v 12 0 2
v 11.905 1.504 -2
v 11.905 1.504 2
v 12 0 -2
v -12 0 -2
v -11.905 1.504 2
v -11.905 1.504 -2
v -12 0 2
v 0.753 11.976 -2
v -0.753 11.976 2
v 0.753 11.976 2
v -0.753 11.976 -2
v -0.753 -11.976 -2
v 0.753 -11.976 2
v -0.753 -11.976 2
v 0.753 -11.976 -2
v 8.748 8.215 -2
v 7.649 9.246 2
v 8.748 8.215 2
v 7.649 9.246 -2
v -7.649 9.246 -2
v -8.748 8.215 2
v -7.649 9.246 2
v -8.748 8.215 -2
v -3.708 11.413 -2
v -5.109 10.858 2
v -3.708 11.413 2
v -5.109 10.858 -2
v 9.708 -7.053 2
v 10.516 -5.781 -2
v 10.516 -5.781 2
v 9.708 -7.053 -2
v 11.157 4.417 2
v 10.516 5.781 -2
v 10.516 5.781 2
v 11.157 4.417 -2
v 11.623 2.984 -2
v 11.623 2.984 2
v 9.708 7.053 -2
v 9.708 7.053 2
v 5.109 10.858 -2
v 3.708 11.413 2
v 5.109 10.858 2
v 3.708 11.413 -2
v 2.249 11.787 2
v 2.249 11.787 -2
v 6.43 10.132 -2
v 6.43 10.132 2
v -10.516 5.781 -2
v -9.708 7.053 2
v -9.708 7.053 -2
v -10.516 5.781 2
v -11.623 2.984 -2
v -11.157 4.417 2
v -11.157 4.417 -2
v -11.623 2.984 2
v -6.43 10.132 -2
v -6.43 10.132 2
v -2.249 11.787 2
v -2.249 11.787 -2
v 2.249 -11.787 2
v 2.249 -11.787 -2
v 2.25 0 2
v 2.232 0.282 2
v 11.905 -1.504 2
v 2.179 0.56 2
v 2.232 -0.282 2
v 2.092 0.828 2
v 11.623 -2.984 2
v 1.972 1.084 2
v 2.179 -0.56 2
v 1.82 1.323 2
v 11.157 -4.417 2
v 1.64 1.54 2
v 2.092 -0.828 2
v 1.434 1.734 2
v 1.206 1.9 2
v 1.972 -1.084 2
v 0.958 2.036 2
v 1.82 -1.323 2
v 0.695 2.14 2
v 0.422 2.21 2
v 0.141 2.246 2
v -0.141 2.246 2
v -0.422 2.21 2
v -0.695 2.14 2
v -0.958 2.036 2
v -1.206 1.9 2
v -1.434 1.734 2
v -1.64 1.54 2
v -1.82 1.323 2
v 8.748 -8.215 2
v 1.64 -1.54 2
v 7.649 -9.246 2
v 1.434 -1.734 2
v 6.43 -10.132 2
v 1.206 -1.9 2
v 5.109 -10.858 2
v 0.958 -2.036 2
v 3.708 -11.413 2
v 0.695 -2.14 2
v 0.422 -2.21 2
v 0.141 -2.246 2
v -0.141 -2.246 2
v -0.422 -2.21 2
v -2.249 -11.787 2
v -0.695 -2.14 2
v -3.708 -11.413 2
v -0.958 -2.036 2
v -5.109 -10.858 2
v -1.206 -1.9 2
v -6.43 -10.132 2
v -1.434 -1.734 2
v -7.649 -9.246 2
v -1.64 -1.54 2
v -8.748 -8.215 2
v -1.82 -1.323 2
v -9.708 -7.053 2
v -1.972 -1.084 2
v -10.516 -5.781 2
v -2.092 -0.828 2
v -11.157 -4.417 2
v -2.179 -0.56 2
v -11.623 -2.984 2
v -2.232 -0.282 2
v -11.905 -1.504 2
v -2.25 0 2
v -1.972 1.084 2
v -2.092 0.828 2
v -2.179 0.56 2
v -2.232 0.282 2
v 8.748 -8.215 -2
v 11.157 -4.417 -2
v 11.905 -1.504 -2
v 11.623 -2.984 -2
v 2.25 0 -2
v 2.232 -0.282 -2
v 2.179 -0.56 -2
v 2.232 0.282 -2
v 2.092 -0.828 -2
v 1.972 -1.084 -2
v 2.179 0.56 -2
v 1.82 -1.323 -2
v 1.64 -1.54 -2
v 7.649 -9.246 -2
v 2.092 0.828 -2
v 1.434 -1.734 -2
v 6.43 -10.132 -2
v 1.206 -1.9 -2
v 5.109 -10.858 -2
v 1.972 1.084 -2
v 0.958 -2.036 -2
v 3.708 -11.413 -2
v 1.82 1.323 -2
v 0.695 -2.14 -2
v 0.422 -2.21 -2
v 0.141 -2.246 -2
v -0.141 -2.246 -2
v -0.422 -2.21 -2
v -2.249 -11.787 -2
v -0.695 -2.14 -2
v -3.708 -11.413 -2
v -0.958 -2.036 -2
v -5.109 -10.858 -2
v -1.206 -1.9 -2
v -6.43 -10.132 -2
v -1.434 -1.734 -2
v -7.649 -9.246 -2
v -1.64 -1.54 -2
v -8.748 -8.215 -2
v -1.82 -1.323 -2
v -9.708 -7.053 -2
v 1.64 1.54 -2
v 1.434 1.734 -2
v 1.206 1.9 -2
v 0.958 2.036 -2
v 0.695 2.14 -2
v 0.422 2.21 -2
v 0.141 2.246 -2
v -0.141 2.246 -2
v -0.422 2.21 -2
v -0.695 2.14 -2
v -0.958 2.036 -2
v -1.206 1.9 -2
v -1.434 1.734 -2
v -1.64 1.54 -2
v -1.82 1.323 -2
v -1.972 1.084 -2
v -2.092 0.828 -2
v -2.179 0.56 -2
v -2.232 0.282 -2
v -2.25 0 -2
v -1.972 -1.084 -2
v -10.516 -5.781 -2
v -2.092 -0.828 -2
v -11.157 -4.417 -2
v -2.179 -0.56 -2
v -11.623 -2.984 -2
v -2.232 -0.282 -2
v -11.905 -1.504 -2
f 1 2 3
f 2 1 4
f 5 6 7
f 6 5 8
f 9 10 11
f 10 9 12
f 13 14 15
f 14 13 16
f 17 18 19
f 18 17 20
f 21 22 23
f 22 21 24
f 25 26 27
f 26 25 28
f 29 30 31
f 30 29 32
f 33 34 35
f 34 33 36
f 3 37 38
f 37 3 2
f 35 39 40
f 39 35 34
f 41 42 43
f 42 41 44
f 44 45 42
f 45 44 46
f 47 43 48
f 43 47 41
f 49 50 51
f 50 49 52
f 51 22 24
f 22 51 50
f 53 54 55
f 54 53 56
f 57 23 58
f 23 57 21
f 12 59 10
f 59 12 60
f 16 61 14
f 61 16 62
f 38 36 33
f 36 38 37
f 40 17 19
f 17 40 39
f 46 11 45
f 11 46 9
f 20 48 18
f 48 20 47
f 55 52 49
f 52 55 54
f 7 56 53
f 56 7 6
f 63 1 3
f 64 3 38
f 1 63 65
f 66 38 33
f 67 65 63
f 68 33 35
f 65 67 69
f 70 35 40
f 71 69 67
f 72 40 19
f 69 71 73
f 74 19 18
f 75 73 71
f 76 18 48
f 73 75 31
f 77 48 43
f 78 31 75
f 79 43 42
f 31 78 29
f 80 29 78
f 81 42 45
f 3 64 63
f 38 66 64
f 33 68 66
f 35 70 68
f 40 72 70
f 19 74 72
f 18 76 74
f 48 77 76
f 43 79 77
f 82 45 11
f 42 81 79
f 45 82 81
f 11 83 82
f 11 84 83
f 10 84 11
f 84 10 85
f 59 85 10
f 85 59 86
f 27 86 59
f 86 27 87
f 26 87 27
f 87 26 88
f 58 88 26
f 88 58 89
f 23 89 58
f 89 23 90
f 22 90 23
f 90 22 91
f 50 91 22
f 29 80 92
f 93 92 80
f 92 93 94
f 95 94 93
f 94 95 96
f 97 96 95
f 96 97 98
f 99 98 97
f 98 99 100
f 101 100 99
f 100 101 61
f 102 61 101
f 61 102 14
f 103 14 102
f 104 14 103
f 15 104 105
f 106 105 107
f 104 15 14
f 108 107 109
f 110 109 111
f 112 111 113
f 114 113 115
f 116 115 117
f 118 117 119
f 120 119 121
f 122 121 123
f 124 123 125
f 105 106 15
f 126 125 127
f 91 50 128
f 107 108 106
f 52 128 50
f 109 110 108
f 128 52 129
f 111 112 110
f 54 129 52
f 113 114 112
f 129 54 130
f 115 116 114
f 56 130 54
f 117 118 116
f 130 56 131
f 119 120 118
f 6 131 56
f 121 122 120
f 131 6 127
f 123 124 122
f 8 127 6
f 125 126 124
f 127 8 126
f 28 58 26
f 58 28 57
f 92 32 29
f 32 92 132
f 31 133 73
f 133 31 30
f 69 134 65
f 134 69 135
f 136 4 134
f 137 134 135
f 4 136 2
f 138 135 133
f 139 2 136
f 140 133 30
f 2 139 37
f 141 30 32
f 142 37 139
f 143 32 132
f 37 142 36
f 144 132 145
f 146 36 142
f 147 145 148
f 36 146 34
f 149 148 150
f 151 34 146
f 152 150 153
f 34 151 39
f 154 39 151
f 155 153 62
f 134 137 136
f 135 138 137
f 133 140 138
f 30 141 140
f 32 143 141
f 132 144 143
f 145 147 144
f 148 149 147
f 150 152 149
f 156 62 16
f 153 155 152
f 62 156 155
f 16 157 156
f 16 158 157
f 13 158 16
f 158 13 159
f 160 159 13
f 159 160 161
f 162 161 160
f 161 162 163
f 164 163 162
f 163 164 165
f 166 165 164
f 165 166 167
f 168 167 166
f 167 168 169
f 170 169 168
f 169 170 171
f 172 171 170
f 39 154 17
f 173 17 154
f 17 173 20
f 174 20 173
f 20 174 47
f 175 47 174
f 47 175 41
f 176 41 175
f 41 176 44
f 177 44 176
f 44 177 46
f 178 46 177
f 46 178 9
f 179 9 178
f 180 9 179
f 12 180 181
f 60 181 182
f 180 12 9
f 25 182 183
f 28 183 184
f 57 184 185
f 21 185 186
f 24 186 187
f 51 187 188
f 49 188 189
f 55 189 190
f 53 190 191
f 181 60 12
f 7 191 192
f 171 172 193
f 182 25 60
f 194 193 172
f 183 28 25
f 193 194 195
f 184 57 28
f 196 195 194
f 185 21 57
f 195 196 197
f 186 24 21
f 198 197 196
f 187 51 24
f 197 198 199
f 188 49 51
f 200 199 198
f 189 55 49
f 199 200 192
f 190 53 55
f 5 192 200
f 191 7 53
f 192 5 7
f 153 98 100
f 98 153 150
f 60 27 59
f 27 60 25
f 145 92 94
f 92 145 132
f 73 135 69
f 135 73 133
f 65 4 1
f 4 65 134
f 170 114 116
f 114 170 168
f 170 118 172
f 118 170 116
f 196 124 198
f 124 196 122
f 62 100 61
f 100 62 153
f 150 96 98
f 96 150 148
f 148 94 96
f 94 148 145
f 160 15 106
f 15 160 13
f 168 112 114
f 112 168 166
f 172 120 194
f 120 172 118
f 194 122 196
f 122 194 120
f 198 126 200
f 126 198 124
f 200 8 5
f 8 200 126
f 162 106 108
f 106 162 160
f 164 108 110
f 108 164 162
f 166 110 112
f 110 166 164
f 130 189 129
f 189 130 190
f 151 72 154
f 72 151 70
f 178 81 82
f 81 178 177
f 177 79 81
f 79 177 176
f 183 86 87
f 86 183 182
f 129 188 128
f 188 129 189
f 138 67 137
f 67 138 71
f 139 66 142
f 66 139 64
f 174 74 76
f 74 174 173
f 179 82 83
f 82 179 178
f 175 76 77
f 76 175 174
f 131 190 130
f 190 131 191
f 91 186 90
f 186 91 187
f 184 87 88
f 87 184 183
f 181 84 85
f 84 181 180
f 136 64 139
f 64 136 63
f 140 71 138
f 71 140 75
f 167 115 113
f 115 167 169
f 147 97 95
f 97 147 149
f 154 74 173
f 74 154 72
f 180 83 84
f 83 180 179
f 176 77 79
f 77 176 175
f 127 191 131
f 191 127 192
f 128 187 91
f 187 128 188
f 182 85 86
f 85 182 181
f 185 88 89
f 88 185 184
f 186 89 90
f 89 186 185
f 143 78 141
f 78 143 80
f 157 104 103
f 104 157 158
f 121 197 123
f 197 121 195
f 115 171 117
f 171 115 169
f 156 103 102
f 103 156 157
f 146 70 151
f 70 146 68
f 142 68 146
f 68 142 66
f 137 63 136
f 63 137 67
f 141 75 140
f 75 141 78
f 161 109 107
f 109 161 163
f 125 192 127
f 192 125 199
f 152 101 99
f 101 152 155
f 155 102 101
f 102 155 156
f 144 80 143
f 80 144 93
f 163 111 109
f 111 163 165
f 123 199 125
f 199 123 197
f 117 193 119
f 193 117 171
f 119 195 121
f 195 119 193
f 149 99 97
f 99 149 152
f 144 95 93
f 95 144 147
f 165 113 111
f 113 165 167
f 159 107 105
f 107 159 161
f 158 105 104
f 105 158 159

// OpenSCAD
$fn = 50;


difference() {
	union() {
		translate(v = [0, 0, -2.0000000000]) {
			cylinder(h = 4, r = 12.0000000000);
		}
	}
	union() {
		translate(v = [0, 0, -100.0000000000]) {
			cylinder(h = 200, r = 2.2500000000);
		}
	}
}
